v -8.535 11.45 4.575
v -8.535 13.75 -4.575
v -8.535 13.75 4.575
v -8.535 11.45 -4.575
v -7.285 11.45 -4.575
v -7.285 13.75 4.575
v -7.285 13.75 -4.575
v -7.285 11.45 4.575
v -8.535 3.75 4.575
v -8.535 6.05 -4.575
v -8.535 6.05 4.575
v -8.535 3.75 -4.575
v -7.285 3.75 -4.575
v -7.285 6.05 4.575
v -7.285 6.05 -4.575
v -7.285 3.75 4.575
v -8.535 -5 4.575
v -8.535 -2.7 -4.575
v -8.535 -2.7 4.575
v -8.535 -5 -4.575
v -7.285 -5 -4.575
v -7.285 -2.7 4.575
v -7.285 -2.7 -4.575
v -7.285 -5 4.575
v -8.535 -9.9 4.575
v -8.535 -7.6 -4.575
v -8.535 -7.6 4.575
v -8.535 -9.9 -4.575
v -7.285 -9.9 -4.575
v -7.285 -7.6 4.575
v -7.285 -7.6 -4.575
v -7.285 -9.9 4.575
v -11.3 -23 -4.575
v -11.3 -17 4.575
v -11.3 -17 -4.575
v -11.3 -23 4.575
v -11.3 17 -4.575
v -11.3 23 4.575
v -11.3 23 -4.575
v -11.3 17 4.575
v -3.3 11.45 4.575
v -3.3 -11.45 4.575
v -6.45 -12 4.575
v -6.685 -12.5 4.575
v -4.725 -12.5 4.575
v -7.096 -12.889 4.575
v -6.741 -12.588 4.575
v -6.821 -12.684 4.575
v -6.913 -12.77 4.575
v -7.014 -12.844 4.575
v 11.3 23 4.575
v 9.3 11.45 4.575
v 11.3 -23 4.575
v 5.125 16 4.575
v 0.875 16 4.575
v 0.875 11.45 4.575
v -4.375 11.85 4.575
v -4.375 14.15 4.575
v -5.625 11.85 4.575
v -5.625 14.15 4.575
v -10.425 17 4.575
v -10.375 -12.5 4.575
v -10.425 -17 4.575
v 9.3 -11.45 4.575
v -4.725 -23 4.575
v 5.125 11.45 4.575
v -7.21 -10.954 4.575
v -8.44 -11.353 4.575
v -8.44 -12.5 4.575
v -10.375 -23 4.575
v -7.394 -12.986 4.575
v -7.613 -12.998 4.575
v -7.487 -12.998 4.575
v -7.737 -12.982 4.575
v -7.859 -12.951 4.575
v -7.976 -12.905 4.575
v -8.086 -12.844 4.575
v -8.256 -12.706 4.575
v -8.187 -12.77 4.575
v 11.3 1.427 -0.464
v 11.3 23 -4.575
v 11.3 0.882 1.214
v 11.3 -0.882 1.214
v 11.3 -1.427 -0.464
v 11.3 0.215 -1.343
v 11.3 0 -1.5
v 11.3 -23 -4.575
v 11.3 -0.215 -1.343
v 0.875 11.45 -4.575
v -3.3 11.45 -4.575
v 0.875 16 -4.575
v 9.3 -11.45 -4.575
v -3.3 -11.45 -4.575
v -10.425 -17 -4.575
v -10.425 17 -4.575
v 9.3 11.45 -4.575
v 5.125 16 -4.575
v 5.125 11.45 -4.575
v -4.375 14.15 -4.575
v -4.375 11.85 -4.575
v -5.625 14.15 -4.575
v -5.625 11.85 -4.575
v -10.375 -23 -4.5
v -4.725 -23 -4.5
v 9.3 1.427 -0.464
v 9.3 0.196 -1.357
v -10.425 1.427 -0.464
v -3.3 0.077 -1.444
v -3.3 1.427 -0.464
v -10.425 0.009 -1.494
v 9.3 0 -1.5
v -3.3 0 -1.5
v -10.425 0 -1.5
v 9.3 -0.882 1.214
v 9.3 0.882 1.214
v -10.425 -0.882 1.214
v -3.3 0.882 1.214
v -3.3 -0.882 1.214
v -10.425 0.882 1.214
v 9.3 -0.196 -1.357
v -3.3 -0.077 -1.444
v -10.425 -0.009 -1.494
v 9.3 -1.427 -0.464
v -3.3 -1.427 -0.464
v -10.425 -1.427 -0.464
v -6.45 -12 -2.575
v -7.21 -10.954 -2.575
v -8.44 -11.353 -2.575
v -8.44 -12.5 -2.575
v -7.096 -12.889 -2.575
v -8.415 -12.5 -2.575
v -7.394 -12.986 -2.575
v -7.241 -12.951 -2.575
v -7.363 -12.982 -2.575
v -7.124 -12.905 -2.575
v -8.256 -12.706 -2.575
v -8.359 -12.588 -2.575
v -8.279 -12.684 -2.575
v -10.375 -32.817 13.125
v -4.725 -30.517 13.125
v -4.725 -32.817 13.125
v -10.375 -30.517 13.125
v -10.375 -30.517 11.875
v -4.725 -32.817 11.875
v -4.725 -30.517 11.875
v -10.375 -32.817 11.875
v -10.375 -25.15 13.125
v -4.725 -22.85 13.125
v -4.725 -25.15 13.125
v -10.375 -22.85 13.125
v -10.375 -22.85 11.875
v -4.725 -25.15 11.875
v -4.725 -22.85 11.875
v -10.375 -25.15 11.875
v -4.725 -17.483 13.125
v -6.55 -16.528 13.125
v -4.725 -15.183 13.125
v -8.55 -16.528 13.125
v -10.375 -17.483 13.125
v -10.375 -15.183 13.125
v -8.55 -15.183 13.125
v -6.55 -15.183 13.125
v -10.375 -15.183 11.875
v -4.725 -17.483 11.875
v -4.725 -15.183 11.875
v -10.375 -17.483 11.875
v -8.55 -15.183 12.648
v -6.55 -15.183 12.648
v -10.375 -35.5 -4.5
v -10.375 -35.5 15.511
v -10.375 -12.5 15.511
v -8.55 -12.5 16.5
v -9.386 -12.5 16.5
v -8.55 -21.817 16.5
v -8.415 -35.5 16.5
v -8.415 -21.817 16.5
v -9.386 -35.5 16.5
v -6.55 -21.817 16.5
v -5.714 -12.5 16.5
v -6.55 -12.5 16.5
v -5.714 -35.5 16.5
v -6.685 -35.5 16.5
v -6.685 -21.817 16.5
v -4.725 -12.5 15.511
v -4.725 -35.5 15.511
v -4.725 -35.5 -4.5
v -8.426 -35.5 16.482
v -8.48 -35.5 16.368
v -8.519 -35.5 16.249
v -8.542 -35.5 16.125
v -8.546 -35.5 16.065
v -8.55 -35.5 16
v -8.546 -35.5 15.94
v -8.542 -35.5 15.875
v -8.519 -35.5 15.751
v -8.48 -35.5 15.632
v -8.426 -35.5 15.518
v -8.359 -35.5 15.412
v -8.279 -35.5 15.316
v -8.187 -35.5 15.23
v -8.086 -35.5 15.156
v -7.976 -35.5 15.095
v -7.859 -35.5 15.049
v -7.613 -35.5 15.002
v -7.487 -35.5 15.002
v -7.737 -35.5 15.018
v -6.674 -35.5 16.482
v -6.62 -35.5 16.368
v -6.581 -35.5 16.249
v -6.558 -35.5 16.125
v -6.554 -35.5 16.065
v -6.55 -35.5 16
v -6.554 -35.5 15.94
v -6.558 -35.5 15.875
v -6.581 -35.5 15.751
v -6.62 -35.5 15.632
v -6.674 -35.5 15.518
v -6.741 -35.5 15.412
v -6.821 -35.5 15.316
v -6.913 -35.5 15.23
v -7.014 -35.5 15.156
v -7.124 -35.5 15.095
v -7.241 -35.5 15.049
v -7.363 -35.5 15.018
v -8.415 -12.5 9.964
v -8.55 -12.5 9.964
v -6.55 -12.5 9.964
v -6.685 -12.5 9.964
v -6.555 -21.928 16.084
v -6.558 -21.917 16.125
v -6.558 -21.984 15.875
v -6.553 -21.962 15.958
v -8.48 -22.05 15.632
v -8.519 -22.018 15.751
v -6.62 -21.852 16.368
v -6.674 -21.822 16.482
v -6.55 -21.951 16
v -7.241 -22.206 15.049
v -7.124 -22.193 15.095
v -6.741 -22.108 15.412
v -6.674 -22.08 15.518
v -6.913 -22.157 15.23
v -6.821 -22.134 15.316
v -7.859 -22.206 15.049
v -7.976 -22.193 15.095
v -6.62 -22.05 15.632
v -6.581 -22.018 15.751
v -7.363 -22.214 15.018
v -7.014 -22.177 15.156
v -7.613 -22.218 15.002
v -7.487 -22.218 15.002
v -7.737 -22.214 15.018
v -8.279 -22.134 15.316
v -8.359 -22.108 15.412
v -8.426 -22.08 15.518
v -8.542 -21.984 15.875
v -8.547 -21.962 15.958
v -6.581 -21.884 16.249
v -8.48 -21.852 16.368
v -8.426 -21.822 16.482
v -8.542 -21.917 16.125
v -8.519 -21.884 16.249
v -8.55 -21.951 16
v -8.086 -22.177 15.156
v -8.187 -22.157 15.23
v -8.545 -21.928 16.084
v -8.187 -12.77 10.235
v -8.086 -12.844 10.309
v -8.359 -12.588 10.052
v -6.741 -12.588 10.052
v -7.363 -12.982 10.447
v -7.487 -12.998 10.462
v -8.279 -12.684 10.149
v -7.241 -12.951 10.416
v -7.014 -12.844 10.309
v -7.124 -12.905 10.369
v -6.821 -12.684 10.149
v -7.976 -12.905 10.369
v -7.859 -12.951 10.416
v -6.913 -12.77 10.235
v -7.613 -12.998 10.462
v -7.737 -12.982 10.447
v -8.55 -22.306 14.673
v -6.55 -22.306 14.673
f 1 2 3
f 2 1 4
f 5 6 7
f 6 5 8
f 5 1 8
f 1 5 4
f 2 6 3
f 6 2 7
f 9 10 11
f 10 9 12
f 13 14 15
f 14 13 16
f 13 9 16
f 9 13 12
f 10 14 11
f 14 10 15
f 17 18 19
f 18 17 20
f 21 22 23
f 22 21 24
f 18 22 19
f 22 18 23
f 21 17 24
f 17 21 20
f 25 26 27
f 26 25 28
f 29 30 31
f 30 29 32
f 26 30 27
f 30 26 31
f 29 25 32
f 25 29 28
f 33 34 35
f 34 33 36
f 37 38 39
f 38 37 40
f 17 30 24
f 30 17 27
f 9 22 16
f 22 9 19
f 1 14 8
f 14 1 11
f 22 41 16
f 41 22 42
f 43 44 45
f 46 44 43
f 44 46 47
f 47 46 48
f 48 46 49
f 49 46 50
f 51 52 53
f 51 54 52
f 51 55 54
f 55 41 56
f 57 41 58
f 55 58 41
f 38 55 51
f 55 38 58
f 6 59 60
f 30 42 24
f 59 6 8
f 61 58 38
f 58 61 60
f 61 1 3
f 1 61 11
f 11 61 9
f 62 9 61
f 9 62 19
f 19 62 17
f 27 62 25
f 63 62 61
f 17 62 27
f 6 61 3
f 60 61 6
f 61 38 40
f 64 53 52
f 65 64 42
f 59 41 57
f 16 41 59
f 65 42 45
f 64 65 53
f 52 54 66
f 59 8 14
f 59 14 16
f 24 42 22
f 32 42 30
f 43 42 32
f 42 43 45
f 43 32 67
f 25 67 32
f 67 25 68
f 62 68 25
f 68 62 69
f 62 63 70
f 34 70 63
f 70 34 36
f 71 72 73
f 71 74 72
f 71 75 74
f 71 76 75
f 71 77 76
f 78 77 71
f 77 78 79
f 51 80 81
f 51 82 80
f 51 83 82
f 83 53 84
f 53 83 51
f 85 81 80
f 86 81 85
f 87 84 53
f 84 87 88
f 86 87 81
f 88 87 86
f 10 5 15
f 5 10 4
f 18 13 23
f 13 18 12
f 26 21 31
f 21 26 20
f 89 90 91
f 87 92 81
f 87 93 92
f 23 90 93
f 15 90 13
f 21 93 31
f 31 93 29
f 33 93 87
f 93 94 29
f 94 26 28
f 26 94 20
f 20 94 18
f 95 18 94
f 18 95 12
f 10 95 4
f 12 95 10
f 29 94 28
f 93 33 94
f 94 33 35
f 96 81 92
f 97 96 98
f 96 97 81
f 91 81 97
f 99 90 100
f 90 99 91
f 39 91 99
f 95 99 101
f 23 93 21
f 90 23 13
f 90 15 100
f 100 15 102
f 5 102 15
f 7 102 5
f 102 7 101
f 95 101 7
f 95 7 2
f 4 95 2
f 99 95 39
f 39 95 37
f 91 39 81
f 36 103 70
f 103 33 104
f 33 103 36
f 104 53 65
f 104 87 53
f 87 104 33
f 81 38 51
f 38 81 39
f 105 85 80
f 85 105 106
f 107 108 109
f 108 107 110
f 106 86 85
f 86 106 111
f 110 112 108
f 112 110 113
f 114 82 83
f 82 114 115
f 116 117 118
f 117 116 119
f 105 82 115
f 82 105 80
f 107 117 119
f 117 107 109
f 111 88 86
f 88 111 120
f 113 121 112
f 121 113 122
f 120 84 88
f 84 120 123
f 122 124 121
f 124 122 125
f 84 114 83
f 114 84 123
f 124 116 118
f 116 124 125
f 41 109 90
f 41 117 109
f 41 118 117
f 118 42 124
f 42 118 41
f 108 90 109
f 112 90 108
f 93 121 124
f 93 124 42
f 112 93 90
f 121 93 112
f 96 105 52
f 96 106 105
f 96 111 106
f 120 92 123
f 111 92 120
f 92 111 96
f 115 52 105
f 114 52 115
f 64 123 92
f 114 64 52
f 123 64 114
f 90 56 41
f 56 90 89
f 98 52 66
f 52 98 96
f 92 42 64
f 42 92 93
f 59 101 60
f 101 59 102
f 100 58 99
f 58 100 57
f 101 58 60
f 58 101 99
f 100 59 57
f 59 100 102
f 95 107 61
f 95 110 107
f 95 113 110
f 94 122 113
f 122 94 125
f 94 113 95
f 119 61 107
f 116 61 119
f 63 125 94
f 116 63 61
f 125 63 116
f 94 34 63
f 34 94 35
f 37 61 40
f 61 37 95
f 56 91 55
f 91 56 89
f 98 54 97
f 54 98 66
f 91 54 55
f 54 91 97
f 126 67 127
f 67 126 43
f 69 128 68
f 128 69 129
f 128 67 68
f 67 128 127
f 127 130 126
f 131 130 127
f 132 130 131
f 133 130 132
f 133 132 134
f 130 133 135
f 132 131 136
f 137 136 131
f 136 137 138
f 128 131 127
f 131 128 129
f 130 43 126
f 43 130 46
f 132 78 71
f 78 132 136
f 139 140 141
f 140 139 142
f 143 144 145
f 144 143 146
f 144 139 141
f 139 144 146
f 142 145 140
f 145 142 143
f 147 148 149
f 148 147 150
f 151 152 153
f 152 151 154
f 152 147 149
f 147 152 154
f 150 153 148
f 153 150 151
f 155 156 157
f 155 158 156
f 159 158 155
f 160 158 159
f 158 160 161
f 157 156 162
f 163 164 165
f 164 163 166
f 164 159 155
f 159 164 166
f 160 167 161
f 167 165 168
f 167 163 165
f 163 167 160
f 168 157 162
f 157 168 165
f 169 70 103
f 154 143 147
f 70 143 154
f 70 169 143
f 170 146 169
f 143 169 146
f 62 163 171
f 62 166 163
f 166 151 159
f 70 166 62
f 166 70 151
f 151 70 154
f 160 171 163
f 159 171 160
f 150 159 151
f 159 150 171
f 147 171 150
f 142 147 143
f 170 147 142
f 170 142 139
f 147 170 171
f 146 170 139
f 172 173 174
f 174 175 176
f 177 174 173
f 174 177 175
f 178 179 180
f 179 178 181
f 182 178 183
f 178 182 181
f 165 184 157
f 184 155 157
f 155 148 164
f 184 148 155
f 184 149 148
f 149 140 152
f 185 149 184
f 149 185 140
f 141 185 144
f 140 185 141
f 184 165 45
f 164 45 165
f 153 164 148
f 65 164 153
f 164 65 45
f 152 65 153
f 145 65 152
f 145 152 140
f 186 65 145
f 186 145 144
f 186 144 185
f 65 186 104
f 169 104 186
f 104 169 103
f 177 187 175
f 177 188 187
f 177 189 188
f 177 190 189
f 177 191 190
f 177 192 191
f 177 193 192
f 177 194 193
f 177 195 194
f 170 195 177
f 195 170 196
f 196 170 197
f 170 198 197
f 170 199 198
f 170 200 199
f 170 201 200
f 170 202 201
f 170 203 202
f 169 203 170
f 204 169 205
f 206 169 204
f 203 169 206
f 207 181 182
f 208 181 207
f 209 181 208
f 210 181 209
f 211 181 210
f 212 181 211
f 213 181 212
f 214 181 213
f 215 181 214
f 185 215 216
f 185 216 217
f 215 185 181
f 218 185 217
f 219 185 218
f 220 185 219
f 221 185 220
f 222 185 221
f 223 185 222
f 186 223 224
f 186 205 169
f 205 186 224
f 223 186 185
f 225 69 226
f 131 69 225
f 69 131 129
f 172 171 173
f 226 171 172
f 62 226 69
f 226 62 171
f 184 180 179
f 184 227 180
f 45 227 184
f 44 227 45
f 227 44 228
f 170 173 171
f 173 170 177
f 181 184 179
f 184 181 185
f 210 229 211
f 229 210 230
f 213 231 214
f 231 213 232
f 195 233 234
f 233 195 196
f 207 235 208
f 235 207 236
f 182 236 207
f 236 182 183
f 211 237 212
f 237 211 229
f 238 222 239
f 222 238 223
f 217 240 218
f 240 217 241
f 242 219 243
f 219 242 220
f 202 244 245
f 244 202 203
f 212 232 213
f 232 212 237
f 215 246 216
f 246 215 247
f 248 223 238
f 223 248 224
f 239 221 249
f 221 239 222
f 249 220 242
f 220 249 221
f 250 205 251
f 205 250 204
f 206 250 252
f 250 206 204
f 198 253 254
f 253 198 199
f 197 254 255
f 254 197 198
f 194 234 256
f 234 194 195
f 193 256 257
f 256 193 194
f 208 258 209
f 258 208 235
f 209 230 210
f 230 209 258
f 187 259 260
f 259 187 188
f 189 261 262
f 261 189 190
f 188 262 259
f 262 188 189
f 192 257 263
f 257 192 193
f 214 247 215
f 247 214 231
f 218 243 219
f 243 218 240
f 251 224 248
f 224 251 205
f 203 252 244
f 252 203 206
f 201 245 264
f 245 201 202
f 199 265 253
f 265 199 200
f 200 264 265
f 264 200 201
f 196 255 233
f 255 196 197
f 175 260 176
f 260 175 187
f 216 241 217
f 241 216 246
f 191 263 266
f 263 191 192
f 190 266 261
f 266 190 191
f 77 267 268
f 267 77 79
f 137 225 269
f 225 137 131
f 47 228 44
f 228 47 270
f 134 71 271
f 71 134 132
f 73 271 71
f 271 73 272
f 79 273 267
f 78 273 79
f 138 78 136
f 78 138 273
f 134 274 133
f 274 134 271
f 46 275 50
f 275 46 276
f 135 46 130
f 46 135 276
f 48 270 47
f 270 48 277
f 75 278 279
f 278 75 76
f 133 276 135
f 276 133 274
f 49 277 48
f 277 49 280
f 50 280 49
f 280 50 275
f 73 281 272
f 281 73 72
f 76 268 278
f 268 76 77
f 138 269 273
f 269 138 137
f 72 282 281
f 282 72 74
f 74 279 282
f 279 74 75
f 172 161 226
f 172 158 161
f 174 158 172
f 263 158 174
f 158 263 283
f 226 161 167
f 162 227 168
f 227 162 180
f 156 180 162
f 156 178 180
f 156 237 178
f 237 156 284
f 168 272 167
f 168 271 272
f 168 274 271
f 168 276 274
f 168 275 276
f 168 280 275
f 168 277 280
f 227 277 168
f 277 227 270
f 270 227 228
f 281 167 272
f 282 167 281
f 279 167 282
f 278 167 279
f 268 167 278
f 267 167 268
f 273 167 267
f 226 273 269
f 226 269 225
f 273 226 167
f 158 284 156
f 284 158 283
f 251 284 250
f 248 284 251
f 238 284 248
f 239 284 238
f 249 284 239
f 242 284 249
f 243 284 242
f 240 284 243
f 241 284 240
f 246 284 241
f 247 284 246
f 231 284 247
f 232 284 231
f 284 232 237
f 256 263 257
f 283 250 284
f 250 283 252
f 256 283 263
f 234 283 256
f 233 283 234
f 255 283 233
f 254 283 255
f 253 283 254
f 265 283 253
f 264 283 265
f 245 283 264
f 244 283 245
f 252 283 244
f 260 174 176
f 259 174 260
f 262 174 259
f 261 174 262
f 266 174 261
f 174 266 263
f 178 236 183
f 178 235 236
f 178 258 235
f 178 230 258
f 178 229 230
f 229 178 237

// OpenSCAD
//https://github.com/EricRohlfs/UltrasonicStriker
//numbers are in mm

// Part 1 of 2 for SG90 servo powered foosball gripper
// A coat hanger is bent into two different arms
// and attached via zip ties

servoHornLength = 34; //adjust if you have different horn size

hornStrapWidth = 1.25; // adjust if zip ties don't fit
hornStrapDepth = 2.3; //adjust if zip ties groves need to be deeper

//Tweak these numbers if necessary, the largest positive number is closest to coat hanger hole
servoHornZipTieChannelPlacement= [-9, -3.5, 2.75, 6.25];

coatHangerDiameter = 2;
coatHangerChannel = coatHangerDiameter;
coatHangerHole = coatHangerChannel +.2;

sg90Margin = .1;
sg90StickerAdjustment = .2;
sg90Width = 12.3 + sg90Margin + sg90StickerAdjustment;
sg90Depth = 22.8 + sg90Margin;
sg90Height = 26.5; //must be greater that base_h

sg90ScrewTabDepth = 4.45;

sg90CavityBack = -sg90Width/2;
sg90CavityBackZip = sg90CavityBack - hornStrapWidth;

sg90screwHoleOffest = 1;
sg90screwHoleRadius = .5;

//main block
base_h = 9.15;  //height
base_w = sg90Width + 10; // width
base_d = 46; //depth
main_bottom = base_h*1.5;

//7 should be base_w - hornstrapWidth - back servo hole
armMountWidth = 7 - hornStrapWidth;
armMountHeight = 20;
armMountY1 = base_d/2; //switch Y and Y1 names are backward
armMountY = -24;

//servo horn set screw
setScrewHoleHeight = 150;
setScrewHoleRadius = 1.5;

servoCavityX = (base_w - sg90Width - 7);
servoCavityY = 0;

module miniround(size, radius)
{
    $fn=50;
    x = size[0]-radius/2;
    y = size[1]-radius/2;

    minkowski()
    {
        cube(size=[x,y,size[2]],center=true);
        cylinder(r=radius);
        // Using a sphere is possible, but will kill performance
        //sphere(r=radius);
    }
}

module main_body(){
   cube([base_w,base_d,base_h],center=true);
    }
    
module SG90ServoCavity(){
    //place to mount sg90 servo
    translate([servoCavityX,servoCavityY,0]) cube([sg90Width,sg90Depth,sg90Height],true);
    }
    
 module SG90ServoMountingHole(){
     translate([base_w/2 - sg90Width /2,sg90Depth/2 + sg90screwHoleOffest,0]) cylinder(h= base_h + 1 ,r= sg90screwHoleRadius,center=true);
    }
    
module servo_horn_screw_access(){
    //hole for servo horn screw so you can quickly swap out broken servo on competition day
    rotate([0,90,0]) translate([0,0,-(base_w/1.99)]) cylinder(h= setScrewHoleHeight,r= setScrewHoleRadius);
    }    
   
module ServoHornZipTieChanels(){
     for(i=servoHornZipTieChannelPlacement){
         spacing = i * 1.4 ;
         translate([-(base_w * .35), -(spacing),0]) cube([hornStrapWidth, hornStrapDepth, base_h +.1],center=true);
    }
 }
 
 module ServoHornNotch(){
        translate([-(base_w/2),0,0]) cube([1.75,servoHornLength,base_h +.1],true);
     }
     
 module ArmZipTieHole (){
      rotate([0,90,0]) cube([hornStrapWidth, hornStrapDepth, base_h +.1],center=true);
     }
     
 module ArmZipTieHoles(){
     numberOfHoles = 3;//must be the same as the array size of holes (sizeof(holes) did not work
     holeDistanceFromTop = 1.5;
     //-1 for one on the left, 0 for center, 1 for one on the right
     holes = [-1,0,1];
     for(i=holes){
        y = armMountY1/numberOfHoles * i;
        z = armMountHeight/2 - coatHangerDiameter -holeDistanceFromTop;
        translate([0,y,z]) ArmZipTieHole();
        //x1=x1 + 2;
    }
}    
 module ArmMount(){
    translate([sg90CavityBackZip,armMountY,6]){
        difference(){
            $fn=50;
            cube([armMountWidth -.1, armMountY1, armMountHeight +1],true);
            //flanges at the top 
            //todo:make dynamic
           translate([-2,0,11.75])rotate([0,45,0]) cube([2, armMountY1 +1 , 5],true);
            translate([2,0,11.75])rotate([0,-45,0]) cube([2, armMountY1 +1 , 5],true);
            //top coat hanger groove
            coatHangerBottomOffset = 2.5;
            rotate([90,0,0]) translate([0,armMountHeight/2 ,- base_w  -10]) cylinder(h= base_d *2,d= coatHangerChannel);
            
        //back coat hanger groove
        translate([0,-armMountY/2,0])cylinder(h=22, d=coatHangerChannel, center=true);
         //back groove inside bendy angle
          
         translate([0,-armMountY/2,7])rotate([-45,0,0])cube([coatHangerChannel,10,coatHangerChannel +3], center=true);
        
       translate([0,-armMountY/2 ,8.5])rotate([-15,0,0])cube([coatHangerChannel,20,coatHangerChannel +3], center=true);
             ArmZipTieHoles();
       }
     }
}

module CoatHangerHole(){
     translate([sg90CavityBackZip, armMountY/2,2]) cylinder(h=base_h, d=coatHangerHole,center=true);
    }
       
module ServoCableHole(){
    //tod: make hole for cable
    sg90CableHoleWidth = 3.75 + .5;
    sg90CableHoleDepth = 4.75;
    translate([ servoCavityX , -sg90StickerAdjustment + sg90Depth/2 + sg90CableHoleDepth/2 ,0])
    cube([sg90CableHoleWidth, sg90CableHoleDepth,base_h + 1],true);
    }

//a bit diferent than the horn zip tie hole
// used inplace of the screw if extra security is needed holding the servo
// to the plate
 module ServoZipTieHole (){
      translate([-5 , 13,0]) cube([hornStrapWidth, hornStrapDepth, base_h +.5],center=true);
     }
difference (){
    main_body();
    servo_horn_screw_access();
    SG90ServoCavity();
    ServoZipTieHole();
    //SG90ServoMountingHole();
    //mirror([0,-base_d,0]) SG90ServoMountingHole();
    ServoHornZipTieChanels();
    ServoHornNotch();
    ServoCableHole();
    CoatHangerHole();//todo: tie this in with arm module
    
}
ArmMount();
   



   
